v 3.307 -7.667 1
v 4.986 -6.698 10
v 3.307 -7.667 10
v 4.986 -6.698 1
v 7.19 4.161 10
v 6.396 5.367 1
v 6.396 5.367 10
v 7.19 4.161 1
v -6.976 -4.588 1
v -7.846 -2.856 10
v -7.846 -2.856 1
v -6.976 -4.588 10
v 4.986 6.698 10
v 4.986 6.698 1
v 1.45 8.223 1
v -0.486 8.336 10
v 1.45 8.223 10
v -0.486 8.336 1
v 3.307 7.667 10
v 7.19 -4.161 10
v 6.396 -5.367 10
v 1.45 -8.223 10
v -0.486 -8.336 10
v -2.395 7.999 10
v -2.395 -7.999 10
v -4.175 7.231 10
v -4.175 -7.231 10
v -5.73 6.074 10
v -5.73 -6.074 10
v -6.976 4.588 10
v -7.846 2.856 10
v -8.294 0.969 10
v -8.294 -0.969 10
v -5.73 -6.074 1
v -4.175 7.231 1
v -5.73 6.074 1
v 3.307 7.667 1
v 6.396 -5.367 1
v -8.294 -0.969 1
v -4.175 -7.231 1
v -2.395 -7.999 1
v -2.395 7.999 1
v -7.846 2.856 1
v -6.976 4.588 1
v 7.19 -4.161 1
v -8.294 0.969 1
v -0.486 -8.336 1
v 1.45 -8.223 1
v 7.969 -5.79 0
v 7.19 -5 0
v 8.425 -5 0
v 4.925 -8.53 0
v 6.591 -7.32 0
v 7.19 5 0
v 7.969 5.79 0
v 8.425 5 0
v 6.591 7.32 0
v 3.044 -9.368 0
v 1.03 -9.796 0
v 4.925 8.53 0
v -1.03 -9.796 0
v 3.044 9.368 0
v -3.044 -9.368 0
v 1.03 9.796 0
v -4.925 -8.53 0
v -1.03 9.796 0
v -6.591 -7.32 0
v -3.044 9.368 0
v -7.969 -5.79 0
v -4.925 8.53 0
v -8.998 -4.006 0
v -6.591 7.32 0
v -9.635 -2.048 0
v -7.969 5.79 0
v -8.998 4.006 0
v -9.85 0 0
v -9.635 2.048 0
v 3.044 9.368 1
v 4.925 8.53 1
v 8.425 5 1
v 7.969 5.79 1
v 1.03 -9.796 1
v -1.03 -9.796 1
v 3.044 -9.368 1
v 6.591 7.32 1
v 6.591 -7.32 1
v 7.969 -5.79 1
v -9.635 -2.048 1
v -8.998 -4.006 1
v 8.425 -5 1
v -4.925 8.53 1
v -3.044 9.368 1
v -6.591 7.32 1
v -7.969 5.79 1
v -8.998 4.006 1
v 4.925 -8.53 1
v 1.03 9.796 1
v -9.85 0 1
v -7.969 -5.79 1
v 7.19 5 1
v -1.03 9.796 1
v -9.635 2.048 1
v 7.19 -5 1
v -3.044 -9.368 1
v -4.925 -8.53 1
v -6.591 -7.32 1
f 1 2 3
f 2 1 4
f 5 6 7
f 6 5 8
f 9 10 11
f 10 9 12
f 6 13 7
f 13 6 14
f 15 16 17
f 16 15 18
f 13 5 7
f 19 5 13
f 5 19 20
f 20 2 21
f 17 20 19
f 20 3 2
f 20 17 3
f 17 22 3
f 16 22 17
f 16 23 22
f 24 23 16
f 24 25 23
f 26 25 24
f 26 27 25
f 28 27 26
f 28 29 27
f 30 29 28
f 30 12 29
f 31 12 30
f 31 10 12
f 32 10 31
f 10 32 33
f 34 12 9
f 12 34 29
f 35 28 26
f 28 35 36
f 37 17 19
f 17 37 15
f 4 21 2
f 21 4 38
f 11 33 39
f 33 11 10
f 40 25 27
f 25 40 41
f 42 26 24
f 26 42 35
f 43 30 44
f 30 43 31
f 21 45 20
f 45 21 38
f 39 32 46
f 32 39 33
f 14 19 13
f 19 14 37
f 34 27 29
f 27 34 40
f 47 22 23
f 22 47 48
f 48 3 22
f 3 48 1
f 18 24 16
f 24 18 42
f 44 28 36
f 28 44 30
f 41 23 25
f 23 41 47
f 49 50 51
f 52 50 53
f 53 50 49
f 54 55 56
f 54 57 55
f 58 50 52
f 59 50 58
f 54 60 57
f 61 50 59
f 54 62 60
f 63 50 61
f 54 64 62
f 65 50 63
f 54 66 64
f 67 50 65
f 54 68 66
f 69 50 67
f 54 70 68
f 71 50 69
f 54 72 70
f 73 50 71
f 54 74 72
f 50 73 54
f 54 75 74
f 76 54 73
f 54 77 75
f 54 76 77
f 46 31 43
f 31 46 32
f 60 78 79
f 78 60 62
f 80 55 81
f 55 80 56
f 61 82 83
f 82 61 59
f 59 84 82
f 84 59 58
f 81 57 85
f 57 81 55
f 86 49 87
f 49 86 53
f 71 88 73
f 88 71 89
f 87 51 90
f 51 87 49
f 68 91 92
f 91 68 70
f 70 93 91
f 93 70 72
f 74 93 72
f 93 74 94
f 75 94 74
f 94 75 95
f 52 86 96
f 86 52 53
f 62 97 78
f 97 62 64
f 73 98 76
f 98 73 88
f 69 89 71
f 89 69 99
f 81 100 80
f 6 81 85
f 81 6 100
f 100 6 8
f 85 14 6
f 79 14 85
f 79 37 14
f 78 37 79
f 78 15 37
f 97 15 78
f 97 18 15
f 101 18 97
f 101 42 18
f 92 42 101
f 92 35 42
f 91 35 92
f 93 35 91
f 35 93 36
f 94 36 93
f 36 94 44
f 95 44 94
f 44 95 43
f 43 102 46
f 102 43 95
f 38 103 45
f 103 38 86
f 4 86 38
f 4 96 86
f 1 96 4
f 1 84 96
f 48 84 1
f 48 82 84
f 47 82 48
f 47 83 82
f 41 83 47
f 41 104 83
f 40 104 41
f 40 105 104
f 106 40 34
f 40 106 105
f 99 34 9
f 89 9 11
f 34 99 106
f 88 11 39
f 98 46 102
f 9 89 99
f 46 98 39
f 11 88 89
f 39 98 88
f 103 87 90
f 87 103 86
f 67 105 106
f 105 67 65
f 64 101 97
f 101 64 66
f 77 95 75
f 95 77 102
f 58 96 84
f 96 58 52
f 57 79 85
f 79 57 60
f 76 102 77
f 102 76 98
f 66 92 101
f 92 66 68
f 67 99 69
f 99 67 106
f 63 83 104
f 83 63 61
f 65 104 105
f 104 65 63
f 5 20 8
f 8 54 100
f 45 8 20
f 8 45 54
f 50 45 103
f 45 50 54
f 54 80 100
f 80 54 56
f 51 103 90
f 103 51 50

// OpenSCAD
difference(){
union(){
cylinder(d1=16.7,d2=16.7,h=10);
cylinder(d=16.7+3,h=1);
}
translate([6.69+0.5,-5,0])
    cube([5,10,10]);
}
